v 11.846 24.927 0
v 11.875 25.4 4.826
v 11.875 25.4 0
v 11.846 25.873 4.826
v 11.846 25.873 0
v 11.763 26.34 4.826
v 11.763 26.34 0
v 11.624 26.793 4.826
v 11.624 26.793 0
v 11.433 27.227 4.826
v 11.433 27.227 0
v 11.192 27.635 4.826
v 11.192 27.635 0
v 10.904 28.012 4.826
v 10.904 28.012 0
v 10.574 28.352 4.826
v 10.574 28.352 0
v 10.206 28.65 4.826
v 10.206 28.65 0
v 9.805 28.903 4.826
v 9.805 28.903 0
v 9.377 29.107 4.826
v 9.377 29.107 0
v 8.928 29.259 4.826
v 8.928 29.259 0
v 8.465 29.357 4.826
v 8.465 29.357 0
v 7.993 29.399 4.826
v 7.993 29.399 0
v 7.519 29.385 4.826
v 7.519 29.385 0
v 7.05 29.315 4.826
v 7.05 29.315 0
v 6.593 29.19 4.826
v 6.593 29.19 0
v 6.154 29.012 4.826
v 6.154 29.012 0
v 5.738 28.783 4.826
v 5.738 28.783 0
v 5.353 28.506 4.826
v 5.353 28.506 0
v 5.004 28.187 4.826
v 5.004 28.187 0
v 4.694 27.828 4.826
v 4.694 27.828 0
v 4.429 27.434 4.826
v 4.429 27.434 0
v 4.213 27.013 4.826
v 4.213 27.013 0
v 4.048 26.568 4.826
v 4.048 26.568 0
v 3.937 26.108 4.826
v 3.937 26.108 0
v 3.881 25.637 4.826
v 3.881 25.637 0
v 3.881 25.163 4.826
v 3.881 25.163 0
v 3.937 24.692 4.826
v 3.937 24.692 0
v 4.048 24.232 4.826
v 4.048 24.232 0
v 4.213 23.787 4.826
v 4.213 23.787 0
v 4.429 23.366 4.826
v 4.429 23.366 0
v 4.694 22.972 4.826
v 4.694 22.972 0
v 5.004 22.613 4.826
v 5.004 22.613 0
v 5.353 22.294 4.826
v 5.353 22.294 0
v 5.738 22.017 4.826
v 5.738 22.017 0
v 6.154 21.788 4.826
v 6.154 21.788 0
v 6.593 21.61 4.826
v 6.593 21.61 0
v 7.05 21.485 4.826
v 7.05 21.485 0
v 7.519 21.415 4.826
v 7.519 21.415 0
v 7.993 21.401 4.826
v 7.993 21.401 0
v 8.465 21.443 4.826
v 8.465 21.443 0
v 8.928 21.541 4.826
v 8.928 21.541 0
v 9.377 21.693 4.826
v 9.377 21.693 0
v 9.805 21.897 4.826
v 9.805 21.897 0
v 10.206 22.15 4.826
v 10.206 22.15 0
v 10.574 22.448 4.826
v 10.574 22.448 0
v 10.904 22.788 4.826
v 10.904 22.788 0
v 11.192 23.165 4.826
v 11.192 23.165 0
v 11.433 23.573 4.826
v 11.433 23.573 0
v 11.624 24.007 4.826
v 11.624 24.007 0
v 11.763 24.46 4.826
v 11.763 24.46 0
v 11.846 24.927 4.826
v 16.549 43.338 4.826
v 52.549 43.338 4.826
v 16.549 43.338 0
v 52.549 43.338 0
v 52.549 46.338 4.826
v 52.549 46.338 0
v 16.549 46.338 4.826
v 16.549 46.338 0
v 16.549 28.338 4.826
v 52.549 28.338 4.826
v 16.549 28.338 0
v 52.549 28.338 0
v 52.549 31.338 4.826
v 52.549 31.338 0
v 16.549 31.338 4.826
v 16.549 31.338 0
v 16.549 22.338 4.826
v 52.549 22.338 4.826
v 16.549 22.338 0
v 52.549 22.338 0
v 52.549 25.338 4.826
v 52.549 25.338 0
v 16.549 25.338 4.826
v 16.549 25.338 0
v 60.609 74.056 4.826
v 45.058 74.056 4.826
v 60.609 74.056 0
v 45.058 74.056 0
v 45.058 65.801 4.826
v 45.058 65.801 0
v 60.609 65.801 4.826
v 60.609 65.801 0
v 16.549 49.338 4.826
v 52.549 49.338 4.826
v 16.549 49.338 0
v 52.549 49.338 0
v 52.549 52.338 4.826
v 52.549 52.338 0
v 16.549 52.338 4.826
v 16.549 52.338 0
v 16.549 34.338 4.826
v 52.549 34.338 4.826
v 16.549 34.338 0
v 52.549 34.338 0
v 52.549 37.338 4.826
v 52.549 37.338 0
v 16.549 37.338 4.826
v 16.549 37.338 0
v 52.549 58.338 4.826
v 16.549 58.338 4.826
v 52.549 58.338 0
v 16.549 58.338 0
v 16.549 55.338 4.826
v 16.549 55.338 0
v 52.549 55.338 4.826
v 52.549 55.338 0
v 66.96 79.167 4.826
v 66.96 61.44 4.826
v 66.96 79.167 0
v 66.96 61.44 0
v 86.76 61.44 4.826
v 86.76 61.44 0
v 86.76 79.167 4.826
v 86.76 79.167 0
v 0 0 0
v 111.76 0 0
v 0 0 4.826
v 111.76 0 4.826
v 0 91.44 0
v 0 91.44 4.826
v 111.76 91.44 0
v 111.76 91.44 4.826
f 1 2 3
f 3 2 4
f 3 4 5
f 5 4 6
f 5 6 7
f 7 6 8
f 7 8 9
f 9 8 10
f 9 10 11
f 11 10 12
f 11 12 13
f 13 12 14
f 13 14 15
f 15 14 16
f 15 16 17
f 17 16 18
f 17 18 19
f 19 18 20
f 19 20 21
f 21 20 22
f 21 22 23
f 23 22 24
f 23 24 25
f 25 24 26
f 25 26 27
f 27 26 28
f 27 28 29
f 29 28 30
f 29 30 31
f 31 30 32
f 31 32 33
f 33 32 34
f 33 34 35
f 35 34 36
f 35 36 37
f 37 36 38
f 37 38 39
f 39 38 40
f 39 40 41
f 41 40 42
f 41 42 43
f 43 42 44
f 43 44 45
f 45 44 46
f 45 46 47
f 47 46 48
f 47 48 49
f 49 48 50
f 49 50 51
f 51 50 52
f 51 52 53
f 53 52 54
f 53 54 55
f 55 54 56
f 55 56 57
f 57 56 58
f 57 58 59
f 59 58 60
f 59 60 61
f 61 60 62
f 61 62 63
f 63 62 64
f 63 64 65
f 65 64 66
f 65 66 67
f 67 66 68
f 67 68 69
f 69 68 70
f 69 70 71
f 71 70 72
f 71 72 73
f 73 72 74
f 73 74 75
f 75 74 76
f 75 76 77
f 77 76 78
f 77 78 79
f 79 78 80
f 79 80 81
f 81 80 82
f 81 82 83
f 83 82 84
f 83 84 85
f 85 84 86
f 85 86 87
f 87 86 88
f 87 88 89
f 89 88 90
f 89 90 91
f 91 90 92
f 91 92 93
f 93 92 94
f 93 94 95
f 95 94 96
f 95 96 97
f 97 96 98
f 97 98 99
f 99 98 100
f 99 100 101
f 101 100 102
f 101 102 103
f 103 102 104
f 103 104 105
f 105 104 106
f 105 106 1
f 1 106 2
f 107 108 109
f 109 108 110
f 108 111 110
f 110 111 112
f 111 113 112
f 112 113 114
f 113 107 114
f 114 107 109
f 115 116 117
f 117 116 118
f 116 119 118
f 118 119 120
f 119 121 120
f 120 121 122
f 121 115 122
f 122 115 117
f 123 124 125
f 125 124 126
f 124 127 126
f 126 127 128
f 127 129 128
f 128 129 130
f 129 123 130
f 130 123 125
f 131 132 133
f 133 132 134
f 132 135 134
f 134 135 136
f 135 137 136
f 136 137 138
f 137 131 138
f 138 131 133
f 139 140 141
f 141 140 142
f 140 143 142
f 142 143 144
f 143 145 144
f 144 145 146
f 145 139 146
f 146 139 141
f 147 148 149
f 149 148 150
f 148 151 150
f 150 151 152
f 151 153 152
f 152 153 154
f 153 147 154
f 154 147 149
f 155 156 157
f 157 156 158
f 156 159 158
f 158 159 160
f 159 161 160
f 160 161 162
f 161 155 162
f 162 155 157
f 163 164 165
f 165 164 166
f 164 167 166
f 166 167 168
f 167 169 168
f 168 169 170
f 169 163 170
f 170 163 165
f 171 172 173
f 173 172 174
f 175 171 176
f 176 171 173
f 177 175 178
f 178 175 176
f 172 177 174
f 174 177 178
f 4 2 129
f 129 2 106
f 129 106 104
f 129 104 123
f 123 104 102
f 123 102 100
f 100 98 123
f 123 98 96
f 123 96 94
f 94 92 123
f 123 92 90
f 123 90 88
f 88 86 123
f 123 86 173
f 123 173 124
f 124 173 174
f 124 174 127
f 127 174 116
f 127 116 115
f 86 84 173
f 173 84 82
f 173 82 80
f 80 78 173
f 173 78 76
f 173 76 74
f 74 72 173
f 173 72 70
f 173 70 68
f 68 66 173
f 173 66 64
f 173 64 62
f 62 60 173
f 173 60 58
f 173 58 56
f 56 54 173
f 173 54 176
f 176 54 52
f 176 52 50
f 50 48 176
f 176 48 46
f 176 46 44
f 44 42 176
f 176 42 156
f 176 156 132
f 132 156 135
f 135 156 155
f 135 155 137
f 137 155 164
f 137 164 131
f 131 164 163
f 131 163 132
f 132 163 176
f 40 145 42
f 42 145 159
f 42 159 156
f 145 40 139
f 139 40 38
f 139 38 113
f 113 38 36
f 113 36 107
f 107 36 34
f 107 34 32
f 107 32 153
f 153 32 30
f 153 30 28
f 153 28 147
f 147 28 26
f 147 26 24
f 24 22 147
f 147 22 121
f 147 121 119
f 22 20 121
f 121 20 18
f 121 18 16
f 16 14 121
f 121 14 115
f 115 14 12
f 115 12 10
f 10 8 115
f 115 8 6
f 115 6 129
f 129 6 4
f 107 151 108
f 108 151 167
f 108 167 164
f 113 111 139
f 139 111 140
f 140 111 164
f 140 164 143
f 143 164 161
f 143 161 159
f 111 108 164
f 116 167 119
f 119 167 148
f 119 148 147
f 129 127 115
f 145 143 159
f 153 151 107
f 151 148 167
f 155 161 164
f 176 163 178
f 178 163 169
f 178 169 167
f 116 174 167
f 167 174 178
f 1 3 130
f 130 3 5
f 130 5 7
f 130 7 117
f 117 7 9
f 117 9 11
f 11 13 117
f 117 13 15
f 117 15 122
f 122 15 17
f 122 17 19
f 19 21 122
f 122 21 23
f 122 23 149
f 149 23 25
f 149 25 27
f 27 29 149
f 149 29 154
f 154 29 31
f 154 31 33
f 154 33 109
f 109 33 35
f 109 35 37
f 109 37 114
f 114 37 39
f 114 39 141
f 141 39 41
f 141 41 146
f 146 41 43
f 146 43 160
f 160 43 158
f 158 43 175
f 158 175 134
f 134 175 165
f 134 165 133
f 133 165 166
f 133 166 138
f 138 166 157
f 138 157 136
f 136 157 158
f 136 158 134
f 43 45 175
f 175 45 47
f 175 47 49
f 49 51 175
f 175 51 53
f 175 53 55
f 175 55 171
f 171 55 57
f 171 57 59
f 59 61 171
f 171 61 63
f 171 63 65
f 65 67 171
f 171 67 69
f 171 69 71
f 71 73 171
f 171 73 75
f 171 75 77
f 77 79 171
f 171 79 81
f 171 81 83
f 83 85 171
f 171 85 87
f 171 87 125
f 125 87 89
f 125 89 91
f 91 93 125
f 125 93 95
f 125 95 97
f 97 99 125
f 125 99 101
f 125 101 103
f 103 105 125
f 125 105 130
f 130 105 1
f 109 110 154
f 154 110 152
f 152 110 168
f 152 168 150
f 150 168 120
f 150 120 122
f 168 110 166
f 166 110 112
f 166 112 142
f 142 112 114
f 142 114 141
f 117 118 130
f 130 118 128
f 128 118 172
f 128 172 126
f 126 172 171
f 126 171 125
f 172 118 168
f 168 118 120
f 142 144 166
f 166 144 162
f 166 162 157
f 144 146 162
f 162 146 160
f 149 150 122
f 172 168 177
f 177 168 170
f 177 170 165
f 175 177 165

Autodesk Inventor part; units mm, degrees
ref_plane "YZ Plane" through (0, 0, 0) normal (1, 0, 0) x (0, 1, 0)
ref_plane "XZ Plane" through (0, 0, 0) normal (0, 1, 0) x (-1, 0, 0)
ref_plane "XY Plane" through (0, 0, 0) normal (0, 0, 1) x (1, 0, 0)
sketch "Sketch1" plane through (0, 0, 0) normal (0, 0, 1) x (1, 0, 0)
  line L0 (0, 0) -> (111.76, 0)
  line L1 (111.76, 0) -> (111.76, 91.44)
  line L2 (111.76, 91.44) -> (0, 91.44)
  line L3 (0, 91.44) -> (0, 0)
  dimension "d0" = 111.76
  dimension "d1" = 91.44
extrude "Extrusion1" add sketch "Sketch1" along normal blind 4.826
sketch "Sketch2" plane through (0, 0, 4.826) normal (0, 0, 1) x (1, 0, 0)
  line L0 (111.76, 0) -> (111.76, 91.44) projected
  line L1 (34.5493, 37.338) -> (52.5493, 37.338)
  line L2 (52.5493, 40.338) -> (16.5493, 40.338)
  line L3 (16.5493, 43.338) -> (52.5493, 43.338)
  line L4 (34.5493, 46.338) -> (52.5493, 46.338)
  line L5 (16.5493, 49.338) -> (52.5493, 49.338)
  line L6 (52.5493, 52.338) -> (16.5493, 52.338)
  line L7 (34.5493, 55.338) -> (52.5493, 55.338)
  line L8 (16.5493, 58.338) -> (52.5493, 58.338)
  line L9 (16.5493, 58.338) -> (16.5493, 22.338)
  line L10 (52.5493, 22.338) -> (16.5493, 22.338)
  line L11 (34.5493, 25.338) -> (52.5493, 25.338)
  line L12 (34.5493, 28.338) -> (52.5493, 28.338)
  line L13 (34.5493, 31.338) -> (52.5493, 31.338)
  line L14 (34.5493, 34.338) -> (52.5493, 34.338)
  line L15 (66.96, 79.167) -> (86.76, 79.167)
  line L16 (66.96, 61.44) -> (66.96, 79.167)
  line L17 (86.76, 61.44) -> (66.96, 61.44)
  line L18 (86.76, 79.167) -> (86.76, 61.44)
  line L19 (60.6088, 74.0565) -> (60.6088, 65.8015)
  line L20 (60.6088, 65.8015) -> (45.0584, 65.8015)
  line L21 (45.0584, 65.8015) -> (45.0584, 74.0565)
  line L22 (45.0584, 74.0565) -> (60.6088, 74.0565)
  circle A0 centre (7.874, 25.4) radius 4.0005
  line L23 (66.96, 79.167) -> (86.76, 79.167)
  line L24 (86.76, 79.167) -> (86.76, 61.44)
  line L25 (86.76, 61.44) -> (66.96, 61.44)
  line L26 (66.96, 61.44) -> (66.96, 79.167)
  line L27 (52.5493, 58.338) -> (16.5493, 58.338)
  line L28 (16.5493, 58.338) -> (16.5493, 22.338)
  line L29 (16.5493, 22.338) -> (52.5493, 22.338)
  line L30 (52.5493, 22.338) -> (52.5493, 58.338)
  circle A1 centre (7.874, 25.4) radius 4.0005
  line L31 (34.5493, 58.338) -> (34.5493, 22.338)
  line L32 (16.5493, 55.338) -> (52.5493, 55.338)
  line L33 (52.5493, 52.338) -> (16.5493, 52.338)
  line L34 (16.5493, 49.338) -> (52.5493, 49.338)
  line L35 (52.5493, 46.338) -> (16.5493, 46.338)
  line L36 (16.5493, 43.338) -> (52.5493, 43.338)
  line L37 (52.5493, 40.338) -> (16.5493, 40.338)
  line L38 (16.5493, 37.338) -> (52.5493, 37.338)
  line L39 (52.5493, 34.338) -> (16.5493, 34.338)
  line L40 (16.5493, 31.338) -> (52.5493, 31.338)
  line L41 (52.5493, 28.338) -> (16.5493, 28.338)
  line L42 (16.5493, 25.338) -> (52.5493, 25.338)
  line L43 (60.6088, 0) -> (60.6088, 50.8)
  line L44 (111.76, 91.44) -> (111.76, 61.44)
  line L45 (111.76, 61.44) -> (86.76, 61.44)
  line L46 (86.76, 79.167) -> (86.76, 61.44)
  point P0 (0, 0)
  point P1 (0, 0)
  point P2 (0, 0)
  point P3 (0, 0)
  point P4 (0, 0)
  point P5 (16.5493, 28.338)
  dimension "d4" = 50.8
  dimension "d7" = 30
  dimension "d8" = 25
extrude "Extrusion2" cut sketch "Sketch2" against normal blind 4.826 contours L1 L30 L14 L31 | L31 L39 L9 L38 | L13 L30 L12 L31 | L31 L41 L9 L40 | L31 L4 L30 L3 | L3 L9 L35 L31 | L11 L30 L10 L31 | L31 L10 L9 L42 | L31 L6 L30 L5 | L5 L9 L6 L31 | L31 L8 L30 L7 | L32 L9 L8 L31 | L15 L18 L17 L16 | L19 L20 L21 L22 | A0
properties part number "compnent box front"
